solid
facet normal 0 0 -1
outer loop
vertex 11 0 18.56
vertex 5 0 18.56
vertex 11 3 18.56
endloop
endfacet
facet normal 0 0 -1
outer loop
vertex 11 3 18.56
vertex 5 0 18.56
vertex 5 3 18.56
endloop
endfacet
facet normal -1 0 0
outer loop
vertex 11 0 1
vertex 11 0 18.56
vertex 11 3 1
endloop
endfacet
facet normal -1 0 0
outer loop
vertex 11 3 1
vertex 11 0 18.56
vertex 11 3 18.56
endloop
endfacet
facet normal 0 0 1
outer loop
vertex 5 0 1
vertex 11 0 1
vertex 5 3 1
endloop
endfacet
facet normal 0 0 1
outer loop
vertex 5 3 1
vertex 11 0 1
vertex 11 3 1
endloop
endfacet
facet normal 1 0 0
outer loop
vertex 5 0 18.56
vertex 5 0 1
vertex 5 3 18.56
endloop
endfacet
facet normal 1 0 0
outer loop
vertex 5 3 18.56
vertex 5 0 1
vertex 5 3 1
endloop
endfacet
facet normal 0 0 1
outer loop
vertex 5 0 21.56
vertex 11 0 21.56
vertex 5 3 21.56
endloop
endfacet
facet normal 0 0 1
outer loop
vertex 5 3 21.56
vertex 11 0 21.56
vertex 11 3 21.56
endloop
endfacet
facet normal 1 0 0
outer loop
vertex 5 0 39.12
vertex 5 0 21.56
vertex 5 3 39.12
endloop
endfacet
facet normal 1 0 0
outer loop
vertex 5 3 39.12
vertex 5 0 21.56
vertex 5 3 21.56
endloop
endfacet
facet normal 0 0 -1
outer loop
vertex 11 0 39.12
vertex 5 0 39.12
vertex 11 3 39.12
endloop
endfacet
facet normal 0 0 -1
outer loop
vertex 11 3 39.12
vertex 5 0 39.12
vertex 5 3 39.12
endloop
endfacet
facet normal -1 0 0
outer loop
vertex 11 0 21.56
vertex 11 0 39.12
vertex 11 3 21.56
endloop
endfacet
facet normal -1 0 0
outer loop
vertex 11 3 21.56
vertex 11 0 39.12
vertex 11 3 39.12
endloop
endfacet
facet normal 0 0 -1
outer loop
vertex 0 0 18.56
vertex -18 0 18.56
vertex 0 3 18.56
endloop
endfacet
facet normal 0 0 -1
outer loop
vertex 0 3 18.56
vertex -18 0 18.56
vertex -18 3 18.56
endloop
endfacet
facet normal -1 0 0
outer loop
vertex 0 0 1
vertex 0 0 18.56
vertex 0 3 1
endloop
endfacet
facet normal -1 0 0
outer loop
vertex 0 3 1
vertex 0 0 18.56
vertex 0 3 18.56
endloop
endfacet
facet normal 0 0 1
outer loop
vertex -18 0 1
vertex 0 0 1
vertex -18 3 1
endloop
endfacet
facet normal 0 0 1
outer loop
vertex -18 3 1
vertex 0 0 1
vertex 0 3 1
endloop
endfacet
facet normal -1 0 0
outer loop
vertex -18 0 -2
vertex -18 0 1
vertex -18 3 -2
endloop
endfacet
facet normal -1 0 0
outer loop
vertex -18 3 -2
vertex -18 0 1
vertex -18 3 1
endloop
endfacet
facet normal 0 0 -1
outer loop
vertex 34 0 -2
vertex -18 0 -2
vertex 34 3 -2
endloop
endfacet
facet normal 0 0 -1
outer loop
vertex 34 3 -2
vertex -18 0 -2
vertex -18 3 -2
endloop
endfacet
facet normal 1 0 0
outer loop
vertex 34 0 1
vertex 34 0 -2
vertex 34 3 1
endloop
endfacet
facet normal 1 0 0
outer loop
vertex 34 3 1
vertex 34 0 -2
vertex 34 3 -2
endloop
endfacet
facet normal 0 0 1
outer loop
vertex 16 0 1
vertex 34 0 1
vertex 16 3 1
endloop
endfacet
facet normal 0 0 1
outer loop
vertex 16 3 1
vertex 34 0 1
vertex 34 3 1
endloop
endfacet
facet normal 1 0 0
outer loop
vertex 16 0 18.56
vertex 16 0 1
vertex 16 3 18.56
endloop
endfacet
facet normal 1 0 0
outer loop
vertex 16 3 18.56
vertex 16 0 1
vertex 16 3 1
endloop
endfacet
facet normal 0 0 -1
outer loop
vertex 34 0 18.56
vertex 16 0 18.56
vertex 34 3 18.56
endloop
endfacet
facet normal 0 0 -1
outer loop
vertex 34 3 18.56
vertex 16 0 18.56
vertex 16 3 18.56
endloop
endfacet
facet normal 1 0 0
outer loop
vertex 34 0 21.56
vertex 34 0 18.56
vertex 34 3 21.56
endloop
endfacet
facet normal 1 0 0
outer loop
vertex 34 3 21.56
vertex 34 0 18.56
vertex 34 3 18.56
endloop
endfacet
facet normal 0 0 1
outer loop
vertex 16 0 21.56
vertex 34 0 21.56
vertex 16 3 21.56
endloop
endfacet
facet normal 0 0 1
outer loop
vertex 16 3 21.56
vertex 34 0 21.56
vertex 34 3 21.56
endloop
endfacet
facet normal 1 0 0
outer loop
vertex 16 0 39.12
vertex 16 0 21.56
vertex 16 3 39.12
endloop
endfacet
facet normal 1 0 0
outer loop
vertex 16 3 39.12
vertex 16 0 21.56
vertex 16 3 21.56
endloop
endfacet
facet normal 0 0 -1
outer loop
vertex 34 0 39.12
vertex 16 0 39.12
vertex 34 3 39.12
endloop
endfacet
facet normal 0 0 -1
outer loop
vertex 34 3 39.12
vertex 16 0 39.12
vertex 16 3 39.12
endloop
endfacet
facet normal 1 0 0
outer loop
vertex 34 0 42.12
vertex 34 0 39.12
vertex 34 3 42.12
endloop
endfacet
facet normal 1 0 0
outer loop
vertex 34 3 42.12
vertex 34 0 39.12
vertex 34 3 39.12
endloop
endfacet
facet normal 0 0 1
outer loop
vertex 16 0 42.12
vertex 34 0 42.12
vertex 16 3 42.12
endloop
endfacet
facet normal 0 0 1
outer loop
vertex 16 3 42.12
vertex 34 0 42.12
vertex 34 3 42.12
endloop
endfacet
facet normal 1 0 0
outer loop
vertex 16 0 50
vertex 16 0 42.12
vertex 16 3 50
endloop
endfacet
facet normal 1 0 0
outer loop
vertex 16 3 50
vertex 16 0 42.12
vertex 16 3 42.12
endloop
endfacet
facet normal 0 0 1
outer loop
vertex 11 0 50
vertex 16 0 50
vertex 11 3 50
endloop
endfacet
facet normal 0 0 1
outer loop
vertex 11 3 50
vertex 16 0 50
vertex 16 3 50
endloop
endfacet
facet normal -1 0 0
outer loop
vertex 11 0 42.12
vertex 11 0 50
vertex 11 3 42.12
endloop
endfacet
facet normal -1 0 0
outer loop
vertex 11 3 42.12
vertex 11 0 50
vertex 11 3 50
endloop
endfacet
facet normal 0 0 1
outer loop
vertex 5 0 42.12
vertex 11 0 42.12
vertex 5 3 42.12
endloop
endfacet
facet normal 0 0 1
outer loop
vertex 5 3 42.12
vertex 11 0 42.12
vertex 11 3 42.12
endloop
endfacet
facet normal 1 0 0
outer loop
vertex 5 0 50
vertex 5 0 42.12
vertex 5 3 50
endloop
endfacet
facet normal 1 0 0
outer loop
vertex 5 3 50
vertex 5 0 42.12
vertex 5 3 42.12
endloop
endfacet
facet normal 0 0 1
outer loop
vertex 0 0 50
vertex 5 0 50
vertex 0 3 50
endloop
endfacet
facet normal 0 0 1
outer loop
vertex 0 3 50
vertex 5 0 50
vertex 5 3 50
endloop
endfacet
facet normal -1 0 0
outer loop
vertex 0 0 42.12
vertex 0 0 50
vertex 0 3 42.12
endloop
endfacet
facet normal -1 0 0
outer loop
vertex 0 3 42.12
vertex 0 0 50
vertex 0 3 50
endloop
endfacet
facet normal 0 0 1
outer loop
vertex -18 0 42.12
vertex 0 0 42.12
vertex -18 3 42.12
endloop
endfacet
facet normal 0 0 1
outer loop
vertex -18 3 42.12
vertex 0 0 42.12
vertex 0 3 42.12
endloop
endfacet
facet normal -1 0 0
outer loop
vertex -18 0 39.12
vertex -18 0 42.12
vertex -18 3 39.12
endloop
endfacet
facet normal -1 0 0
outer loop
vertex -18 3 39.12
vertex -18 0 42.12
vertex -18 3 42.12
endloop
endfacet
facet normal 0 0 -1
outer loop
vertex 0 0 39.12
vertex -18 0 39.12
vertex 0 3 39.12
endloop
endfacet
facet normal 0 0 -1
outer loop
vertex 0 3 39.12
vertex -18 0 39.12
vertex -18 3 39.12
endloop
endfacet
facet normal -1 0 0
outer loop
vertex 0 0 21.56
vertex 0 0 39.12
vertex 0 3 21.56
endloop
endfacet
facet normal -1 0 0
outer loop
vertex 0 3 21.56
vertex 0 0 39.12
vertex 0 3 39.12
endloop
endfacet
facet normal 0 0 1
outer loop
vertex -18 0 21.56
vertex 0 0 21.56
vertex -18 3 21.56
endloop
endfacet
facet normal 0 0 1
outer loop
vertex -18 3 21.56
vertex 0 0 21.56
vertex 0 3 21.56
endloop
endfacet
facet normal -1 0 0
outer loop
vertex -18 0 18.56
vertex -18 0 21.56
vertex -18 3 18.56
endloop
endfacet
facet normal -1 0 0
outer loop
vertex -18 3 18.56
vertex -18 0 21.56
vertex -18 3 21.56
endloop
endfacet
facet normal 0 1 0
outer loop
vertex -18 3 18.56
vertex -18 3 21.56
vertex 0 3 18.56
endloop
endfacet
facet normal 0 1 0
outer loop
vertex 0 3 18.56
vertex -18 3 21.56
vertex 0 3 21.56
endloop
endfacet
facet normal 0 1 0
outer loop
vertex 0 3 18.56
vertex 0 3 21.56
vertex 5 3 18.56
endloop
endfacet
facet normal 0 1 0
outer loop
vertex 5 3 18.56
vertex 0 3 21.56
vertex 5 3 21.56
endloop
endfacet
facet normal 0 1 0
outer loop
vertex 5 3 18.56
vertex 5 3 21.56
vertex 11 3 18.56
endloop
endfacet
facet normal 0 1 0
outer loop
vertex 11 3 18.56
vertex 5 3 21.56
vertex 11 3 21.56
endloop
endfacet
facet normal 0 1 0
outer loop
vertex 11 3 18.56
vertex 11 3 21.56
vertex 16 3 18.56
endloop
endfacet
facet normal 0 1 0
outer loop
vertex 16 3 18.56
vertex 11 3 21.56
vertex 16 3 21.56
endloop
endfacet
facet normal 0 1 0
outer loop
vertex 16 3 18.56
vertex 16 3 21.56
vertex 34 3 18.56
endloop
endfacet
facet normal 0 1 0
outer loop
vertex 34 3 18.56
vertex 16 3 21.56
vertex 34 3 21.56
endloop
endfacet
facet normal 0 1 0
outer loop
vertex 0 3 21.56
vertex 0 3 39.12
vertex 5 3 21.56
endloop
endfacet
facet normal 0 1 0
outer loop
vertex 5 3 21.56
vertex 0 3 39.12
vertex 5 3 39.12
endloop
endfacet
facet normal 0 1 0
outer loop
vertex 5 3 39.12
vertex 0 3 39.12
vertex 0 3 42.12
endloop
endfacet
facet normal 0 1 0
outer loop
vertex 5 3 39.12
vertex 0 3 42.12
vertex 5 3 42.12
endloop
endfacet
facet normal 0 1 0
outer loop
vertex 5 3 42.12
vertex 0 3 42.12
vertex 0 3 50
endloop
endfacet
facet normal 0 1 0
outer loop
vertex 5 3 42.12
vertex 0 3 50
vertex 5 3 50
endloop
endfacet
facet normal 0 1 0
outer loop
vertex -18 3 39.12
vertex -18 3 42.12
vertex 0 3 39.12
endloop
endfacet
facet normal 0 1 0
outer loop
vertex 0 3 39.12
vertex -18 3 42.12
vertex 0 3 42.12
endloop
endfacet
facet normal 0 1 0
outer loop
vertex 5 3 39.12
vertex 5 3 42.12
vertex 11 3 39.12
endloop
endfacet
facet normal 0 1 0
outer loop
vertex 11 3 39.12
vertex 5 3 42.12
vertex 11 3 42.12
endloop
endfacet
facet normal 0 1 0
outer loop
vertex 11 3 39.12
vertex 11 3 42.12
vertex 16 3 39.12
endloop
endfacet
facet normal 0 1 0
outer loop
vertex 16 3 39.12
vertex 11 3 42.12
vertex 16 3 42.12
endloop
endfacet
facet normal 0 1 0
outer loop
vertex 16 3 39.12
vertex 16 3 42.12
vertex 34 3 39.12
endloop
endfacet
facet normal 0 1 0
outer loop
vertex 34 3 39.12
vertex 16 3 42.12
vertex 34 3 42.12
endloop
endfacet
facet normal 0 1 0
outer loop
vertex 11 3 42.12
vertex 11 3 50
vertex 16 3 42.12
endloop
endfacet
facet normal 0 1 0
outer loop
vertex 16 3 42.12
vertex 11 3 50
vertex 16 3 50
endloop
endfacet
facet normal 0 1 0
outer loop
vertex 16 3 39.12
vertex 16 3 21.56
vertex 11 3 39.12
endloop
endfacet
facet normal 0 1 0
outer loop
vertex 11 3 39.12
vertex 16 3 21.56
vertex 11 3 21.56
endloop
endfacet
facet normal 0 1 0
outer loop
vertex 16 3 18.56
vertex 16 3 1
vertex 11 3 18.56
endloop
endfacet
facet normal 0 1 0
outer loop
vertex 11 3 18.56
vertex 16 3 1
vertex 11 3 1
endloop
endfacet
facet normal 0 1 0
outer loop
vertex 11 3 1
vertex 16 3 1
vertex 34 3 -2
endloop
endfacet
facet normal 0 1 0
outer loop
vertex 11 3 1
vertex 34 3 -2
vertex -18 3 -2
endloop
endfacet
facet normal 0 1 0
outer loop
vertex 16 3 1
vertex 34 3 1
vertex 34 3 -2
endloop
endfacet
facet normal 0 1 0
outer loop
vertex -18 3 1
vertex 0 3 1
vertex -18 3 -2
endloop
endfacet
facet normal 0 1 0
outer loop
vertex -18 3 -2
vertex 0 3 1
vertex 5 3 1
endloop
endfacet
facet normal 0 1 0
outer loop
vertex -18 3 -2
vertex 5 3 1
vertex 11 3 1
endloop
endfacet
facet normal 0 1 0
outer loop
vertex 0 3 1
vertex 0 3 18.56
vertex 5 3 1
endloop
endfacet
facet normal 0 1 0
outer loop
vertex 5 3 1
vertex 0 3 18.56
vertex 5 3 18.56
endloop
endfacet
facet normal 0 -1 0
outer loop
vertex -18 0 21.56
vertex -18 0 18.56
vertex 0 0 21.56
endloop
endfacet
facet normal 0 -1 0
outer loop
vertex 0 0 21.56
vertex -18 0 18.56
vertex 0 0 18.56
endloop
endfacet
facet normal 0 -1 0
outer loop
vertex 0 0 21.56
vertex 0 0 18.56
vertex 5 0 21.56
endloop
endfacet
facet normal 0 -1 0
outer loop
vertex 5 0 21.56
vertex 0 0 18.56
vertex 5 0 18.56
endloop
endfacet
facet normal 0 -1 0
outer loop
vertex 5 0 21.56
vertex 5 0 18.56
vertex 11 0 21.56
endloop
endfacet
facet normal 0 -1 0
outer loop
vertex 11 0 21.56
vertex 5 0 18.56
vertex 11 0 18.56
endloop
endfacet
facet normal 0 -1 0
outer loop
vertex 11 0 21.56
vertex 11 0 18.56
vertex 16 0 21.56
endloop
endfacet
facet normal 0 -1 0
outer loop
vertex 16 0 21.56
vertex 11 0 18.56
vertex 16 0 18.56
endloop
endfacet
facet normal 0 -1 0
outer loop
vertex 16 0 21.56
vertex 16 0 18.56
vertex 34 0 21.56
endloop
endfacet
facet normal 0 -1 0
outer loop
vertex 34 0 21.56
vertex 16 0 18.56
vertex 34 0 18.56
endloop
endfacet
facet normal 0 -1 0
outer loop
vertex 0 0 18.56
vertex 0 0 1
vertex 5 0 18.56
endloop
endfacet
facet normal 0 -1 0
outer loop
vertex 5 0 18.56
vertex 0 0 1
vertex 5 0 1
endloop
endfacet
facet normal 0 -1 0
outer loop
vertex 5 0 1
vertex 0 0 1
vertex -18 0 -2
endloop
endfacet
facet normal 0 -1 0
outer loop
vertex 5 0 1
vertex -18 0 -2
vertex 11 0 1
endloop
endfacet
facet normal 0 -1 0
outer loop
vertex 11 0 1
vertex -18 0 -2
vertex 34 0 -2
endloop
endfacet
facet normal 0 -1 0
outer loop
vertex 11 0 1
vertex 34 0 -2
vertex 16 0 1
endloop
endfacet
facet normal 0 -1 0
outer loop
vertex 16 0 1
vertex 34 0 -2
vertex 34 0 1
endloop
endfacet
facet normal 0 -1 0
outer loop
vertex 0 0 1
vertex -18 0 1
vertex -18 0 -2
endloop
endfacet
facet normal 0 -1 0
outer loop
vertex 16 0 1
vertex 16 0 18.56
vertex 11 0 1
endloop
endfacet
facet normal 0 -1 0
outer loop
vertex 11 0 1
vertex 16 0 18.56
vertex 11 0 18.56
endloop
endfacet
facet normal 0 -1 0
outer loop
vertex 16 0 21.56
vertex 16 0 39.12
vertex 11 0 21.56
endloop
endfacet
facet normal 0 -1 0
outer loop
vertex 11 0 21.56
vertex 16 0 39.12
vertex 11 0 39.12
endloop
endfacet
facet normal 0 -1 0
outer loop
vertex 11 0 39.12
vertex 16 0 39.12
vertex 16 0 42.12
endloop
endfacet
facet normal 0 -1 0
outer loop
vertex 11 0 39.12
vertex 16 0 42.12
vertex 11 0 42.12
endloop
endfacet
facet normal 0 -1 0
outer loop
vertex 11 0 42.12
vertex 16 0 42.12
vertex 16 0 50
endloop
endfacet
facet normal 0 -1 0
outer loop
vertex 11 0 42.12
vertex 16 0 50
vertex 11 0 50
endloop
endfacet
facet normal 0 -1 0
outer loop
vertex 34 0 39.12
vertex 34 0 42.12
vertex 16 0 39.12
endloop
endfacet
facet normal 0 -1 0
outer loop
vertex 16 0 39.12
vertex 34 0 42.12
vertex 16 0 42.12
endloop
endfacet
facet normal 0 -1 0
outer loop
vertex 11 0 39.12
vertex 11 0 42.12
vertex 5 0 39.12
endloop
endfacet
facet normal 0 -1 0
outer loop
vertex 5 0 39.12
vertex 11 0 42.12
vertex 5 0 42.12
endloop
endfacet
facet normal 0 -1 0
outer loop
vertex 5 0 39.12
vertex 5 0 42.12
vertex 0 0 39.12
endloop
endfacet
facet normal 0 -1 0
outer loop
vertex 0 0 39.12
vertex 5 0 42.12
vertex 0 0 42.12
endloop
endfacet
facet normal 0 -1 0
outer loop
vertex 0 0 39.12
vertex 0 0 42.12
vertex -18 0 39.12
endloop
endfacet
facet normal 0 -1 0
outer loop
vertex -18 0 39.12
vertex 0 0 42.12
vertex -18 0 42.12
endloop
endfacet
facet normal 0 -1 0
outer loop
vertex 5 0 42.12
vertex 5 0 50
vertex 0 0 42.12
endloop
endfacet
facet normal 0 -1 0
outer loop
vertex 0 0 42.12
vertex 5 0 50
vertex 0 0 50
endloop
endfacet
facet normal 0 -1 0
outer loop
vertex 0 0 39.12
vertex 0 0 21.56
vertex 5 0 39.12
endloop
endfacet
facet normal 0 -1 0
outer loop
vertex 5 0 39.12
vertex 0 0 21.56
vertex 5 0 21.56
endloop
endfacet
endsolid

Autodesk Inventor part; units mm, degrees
ref_plane "YZ Plane" through (0, 0, 0) normal (1, 0, 0) x (0, 1, 0)
ref_plane "XZ Plane" through (0, 0, 0) normal (0, 1, 0) x (-1, 0, 0)
ref_plane "XY Plane" through (0, 0, 0) normal (0, 0, 1) x (1, 0, 0)
sketch "Sketch1" plane through (0, 0, 0) normal (0, 1, 0) x (-1, 0, 0)
  line L0 (0, 0) -> (-5, 0)
  line L1 (-5, 0) -> (-5, 50)
  line L2 (-5, 50) -> (0, 50)
  line L3 (0, 50) -> (0, 0)
  line L4 (-16, 50) -> (-11, 50)
  line L5 (-11, 50) -> (-11, 0)
  line L6 (-11, 0) -> (-16, 0)
  line L7 (-16, 0) -> (-16, 50)
  line L8 (18, 1) -> (-34, 1)
  line L9 (-34, 1) -> (-34, -2)
  line L10 (-34, -2) -> (18, -2)
  line L11 (18, -2) -> (18, 1)
  line L12 (-5, 0) -> (-11, 0)
  line L13 (18, 18.56) -> (-34, 18.56)
  line L14 (-34, 18.56) -> (-34, 21.56)
  line L15 (-34, 21.56) -> (18, 21.56)
  line L16 (18, 21.56) -> (18, 18.56)
  line L17 (18, 39.12) -> (-34, 39.12)
  line L18 (-34, 39.12) -> (-34, 42.12)
  line L19 (-34, 42.12) -> (18, 42.12)
  line L20 (18, 42.12) -> (18, 39.12)
  point P0 (-8, 0)
  point P1 (-8, -2)
  point P2 (0, 18.56)
  point P3 (0, 21.56)
  point P4 (0, 39.12)
  point P5 (0, 42.12)
  point P6 (-5, 42.12)
  point P7 (-11, 42.12)
  point P8 (-16, 42.12)
  point P9 (-16, 39.12)
  point P10 (-16, 21.56)
  point P11 (-16, 18.56)
  point P12 (-16, 1)
  point P13 (0, 1)
  point P14 (-11, 21.56)
  point P15 (-11, 39.12)
  point P16 (-5, 39.12)
  point P17 (-5, 21.56)
  point P18 (-5, 18.56)
  point P19 (-5, 1)
  point P20 (-11, 1)
  point P21 (-11, 18.56)
  point P22 (-8, 18.56)
  dimension "d0" = 5
  dimension "d1" = 50
  dimension "d3" = 5
  dimension "d4" = 50
  dimension "d5" = 52
  dimension "d6" = 3
  dimension "d7" = 1
  dimension "d8" = 0
  dimension "d9" = 52
  dimension "d10" = 3
  dimension "d11" = 52
  dimension "d12" = 3
  dimension "d16" = 20.56
  dimension "d17" = 20.56
  dimension "d20" = 16
  dimension "d21" = 0
extrude "Extrusion1" add sketch "Sketch1" along normal blind 3 contours L3 L8 L11 L10 L9 L7 L6 L12 L0 | L0 L1 L8 L3 | L12 L5 L8 L1 | L8 L1 L13 L3 | L6 L7 L8 L5 | L13 L1 L15 L3 | L3 L15 L16 L13 | L13 L5 L15 L1 | L8 L7 L13 L5 | L15 L1 L17 L3 | L13 L7 L15 L5 | L17 L1 L19 L3 | L3 L19 L20 L17 | L17 L5 L19 L1 | L15 L7 L17 L5 | L13 L14 L15 L7 | L19 L1 L2 L3 | L17 L7 L19 L5 | L19 L7 L4 L5 | L17 L18 L19 L7
equation "\"d3\" = d0"
equation "\"d4\" = d1"
properties part number "module-switch_port-catch" material "PC/ABS Plastic"
